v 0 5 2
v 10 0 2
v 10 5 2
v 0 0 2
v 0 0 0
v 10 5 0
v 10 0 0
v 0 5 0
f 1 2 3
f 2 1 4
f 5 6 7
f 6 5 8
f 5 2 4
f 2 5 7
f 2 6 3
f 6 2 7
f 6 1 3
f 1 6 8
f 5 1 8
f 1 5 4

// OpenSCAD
width = 10;
depth = 5;
height = 2;

difference() {
  cube([width, depth, height]);
}
